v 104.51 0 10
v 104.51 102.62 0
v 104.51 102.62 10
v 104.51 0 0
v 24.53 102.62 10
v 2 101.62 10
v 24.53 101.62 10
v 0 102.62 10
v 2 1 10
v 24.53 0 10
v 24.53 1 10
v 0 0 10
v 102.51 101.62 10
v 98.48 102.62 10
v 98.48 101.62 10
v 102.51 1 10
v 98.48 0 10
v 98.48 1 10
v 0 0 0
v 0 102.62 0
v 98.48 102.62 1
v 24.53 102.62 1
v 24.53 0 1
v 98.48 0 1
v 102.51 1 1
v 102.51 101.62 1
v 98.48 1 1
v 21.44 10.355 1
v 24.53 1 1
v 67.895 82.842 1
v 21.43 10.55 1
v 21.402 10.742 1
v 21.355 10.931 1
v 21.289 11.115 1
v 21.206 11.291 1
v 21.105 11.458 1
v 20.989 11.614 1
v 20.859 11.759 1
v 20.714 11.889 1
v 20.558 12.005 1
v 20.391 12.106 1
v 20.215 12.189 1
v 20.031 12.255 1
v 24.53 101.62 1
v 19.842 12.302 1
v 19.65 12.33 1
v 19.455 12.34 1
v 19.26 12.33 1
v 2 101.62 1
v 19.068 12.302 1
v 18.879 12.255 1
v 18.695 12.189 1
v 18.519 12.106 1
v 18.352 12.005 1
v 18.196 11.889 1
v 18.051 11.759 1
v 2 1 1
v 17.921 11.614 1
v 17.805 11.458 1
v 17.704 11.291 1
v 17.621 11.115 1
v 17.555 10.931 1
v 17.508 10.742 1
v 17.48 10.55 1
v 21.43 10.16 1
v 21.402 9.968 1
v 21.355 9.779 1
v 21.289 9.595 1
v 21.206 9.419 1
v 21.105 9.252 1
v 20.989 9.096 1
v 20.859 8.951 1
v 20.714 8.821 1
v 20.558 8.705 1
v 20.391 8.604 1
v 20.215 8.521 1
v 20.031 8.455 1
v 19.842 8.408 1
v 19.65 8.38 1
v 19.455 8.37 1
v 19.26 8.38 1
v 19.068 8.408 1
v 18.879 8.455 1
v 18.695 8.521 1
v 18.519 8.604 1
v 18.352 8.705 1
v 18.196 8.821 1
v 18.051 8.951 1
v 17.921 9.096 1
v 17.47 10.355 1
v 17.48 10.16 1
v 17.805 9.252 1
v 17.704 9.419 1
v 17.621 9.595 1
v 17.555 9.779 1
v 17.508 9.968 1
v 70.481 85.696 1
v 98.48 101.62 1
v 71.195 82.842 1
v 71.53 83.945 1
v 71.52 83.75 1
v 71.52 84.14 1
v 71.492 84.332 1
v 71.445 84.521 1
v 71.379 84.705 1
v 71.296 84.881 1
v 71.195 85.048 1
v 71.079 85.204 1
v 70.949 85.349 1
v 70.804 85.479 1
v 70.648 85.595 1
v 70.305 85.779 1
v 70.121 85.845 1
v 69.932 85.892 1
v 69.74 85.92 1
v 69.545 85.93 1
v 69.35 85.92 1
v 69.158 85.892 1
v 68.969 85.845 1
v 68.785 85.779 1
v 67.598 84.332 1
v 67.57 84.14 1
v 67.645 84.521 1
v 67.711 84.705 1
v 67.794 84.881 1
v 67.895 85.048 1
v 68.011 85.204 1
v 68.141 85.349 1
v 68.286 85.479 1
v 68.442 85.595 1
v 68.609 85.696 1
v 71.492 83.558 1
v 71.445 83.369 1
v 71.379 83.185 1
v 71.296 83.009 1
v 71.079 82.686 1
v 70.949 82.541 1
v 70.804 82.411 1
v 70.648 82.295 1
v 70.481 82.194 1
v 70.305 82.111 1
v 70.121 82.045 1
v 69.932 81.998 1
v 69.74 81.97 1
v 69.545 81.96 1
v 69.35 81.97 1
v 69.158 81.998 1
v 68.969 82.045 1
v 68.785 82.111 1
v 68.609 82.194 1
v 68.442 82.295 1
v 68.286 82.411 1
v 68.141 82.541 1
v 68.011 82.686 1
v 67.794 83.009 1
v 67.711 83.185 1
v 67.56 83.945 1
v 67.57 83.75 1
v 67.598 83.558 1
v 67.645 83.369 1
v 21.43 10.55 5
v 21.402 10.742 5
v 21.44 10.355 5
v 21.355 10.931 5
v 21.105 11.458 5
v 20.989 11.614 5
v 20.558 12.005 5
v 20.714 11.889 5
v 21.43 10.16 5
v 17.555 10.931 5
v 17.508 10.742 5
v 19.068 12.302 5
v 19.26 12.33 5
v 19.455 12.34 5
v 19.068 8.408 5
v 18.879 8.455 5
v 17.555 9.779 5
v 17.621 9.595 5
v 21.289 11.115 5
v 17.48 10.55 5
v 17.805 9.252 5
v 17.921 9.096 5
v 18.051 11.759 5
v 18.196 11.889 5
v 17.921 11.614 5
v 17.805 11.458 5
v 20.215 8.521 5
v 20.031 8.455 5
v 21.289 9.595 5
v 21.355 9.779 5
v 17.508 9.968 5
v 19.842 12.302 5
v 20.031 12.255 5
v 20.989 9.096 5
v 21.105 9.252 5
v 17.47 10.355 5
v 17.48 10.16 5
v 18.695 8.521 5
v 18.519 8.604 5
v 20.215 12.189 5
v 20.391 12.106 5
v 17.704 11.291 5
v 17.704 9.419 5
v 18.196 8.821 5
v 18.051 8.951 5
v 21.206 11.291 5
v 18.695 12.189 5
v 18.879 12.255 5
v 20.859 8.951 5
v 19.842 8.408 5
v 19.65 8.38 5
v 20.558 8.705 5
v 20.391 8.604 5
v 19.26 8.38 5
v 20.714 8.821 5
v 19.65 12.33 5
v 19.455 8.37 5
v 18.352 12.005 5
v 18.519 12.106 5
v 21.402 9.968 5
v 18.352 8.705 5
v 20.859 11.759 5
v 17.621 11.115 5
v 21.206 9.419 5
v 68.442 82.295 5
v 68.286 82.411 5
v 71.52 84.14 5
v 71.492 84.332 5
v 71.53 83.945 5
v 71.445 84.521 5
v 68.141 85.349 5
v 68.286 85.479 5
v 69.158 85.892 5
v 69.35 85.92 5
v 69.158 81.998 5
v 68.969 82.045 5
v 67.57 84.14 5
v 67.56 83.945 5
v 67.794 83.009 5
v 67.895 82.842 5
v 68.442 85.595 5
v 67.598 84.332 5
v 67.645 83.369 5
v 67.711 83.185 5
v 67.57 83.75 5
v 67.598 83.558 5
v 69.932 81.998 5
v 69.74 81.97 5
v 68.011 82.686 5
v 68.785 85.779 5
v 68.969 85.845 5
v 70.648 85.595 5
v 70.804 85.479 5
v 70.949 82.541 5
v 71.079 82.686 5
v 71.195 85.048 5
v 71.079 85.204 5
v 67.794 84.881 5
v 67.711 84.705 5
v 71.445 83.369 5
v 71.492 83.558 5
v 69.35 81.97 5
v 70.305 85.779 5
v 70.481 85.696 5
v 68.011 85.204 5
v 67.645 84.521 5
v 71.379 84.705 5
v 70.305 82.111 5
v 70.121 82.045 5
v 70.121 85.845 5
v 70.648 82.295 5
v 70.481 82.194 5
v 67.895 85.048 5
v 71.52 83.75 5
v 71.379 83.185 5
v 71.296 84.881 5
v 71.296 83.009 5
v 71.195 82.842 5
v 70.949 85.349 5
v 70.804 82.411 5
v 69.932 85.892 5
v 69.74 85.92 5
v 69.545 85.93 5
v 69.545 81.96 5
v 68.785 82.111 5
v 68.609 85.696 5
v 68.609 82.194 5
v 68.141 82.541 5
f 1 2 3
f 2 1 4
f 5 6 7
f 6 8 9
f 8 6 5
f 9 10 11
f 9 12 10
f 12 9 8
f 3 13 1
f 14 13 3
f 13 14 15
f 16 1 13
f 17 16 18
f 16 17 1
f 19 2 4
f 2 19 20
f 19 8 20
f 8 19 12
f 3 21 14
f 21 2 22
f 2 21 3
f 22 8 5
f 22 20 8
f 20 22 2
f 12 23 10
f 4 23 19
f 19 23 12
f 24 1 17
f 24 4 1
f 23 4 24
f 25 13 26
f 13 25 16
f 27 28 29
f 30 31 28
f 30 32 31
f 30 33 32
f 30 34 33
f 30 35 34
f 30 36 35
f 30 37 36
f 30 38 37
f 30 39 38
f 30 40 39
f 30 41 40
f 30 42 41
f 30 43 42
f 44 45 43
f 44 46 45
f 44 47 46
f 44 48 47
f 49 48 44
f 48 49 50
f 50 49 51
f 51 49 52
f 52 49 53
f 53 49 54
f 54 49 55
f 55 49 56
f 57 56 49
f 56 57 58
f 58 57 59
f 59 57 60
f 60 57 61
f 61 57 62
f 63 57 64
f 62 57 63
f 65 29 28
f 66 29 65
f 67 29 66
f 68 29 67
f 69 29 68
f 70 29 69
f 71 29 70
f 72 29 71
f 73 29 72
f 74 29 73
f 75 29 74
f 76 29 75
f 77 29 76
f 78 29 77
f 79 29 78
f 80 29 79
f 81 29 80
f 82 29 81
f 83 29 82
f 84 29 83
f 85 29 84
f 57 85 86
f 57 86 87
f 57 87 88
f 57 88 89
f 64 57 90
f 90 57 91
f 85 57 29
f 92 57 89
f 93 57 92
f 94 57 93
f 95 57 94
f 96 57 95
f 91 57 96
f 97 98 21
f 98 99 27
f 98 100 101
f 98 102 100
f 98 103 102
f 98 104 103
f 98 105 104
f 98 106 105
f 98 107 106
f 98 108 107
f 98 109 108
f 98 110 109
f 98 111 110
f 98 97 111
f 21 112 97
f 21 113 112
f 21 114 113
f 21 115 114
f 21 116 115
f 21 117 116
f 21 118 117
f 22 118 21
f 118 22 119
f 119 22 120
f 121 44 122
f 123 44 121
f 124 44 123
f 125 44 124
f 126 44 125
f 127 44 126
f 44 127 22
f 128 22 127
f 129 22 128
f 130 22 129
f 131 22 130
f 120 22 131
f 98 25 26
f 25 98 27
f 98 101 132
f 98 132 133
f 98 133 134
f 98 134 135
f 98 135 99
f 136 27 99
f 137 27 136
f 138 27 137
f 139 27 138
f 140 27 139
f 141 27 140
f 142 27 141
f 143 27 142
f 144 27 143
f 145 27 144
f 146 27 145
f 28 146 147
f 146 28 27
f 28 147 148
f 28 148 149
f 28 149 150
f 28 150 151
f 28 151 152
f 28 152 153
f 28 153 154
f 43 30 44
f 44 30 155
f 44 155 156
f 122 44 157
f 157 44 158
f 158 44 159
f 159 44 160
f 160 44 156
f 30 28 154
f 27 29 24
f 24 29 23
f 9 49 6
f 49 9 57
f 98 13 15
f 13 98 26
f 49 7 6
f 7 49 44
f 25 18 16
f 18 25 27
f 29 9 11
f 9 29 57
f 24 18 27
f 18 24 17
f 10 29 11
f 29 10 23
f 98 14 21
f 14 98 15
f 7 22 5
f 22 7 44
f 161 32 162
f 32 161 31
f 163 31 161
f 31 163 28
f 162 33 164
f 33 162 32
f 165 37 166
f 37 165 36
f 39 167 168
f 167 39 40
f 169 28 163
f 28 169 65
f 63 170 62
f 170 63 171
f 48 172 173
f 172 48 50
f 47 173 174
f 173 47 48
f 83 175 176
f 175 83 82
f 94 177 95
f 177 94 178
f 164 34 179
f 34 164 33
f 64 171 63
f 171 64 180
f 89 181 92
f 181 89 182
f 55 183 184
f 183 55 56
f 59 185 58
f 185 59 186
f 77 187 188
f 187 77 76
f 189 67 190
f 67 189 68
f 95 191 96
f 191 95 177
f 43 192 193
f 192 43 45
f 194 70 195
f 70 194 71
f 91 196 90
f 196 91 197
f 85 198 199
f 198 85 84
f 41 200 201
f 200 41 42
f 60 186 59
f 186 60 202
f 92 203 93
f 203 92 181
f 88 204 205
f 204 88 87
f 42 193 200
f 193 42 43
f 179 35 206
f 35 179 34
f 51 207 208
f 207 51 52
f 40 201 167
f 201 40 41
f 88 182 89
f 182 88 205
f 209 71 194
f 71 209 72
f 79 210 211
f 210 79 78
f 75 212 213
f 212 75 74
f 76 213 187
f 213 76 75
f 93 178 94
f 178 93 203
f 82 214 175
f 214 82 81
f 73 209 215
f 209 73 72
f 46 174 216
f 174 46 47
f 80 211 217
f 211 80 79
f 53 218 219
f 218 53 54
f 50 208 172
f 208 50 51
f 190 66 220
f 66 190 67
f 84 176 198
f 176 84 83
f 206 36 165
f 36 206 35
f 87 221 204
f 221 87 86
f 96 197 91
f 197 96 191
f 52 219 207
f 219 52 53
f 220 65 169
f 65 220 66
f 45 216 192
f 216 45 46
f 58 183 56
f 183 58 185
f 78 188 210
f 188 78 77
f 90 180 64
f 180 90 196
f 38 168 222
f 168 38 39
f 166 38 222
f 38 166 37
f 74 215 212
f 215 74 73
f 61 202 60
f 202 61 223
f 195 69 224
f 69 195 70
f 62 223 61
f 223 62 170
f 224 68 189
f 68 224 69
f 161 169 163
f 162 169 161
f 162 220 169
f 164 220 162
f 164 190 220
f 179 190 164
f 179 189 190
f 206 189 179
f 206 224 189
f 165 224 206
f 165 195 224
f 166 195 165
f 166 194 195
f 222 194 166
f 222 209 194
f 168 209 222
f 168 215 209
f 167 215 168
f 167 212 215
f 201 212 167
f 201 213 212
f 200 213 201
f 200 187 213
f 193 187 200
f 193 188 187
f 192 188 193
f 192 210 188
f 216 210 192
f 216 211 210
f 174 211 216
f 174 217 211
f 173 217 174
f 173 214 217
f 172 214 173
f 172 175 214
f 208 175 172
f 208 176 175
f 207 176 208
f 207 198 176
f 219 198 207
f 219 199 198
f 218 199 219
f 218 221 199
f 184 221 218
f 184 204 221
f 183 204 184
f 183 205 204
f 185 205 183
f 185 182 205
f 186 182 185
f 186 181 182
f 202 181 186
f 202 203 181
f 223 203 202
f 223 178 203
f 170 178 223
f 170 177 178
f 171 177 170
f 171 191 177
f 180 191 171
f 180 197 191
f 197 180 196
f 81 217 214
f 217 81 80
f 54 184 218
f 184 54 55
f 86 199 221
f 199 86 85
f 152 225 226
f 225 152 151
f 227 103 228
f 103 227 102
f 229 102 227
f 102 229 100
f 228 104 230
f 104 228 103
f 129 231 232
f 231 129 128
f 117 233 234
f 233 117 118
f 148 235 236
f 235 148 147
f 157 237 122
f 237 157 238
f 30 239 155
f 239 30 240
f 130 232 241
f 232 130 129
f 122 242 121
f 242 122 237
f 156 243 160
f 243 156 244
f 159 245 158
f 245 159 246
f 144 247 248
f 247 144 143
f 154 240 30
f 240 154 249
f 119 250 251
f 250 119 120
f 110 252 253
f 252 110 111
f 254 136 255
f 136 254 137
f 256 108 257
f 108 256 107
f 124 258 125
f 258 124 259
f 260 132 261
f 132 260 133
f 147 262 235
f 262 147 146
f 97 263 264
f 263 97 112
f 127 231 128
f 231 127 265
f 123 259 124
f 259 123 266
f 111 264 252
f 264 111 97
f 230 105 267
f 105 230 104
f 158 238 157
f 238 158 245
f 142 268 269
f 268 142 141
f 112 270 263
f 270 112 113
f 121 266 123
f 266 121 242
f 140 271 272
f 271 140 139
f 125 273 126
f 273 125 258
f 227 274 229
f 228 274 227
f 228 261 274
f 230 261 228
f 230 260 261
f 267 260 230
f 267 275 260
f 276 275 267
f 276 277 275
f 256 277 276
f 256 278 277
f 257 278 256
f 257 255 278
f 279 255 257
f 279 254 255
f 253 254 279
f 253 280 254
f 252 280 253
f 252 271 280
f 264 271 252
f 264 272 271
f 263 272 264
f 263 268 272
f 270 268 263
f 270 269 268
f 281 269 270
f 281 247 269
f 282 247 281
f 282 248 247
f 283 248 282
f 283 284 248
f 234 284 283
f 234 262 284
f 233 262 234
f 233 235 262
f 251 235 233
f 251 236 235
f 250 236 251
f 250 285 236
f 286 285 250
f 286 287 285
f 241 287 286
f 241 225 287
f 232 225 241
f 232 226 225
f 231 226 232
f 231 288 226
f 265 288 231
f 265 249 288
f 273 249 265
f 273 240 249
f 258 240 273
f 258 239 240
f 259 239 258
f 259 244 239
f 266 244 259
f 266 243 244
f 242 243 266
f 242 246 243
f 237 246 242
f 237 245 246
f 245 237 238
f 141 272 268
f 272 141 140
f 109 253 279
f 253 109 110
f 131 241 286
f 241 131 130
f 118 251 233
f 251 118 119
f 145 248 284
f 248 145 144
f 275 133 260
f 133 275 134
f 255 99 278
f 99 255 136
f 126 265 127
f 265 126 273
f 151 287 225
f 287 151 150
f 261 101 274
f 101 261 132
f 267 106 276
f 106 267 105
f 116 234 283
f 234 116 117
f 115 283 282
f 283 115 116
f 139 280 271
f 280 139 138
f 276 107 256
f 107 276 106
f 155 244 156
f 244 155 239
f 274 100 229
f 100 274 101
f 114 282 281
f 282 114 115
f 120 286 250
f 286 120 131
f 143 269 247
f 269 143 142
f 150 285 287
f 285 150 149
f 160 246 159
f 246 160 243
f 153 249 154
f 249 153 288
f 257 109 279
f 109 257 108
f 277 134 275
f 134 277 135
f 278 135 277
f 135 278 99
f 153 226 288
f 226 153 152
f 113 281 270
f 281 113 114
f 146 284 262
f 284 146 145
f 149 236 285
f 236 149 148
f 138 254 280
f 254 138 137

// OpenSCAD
pcb_width=99.85;                // Across the back of the ZX, as per KiCAD PCB layout
pcb_length=99.96;               // ZX edge connector to rear of PCB, as per KiCAD PCB layout
side_wall_thickness=2.0;        // Left and right side walls
far_wall_thickness=1.0;         // Wall as rear of device, might obstruct plugging in
closest_wall_thickness=1.0;     // Wall closest to ZX, might obstruct plugging in
base_thickness=1.0;             // Mustn't be too high, PCB will lift as it is

walls_height=10.0;              // For now, keep the walls low

// These are from the rear edge, which is slightly wider than the front
//
right_side_edge_offset=3.7;     // Edge connector slot, from right side
left_side_edge_offset=22.2;     // Edge connector slot, from left side

spacing=0.33;                   // Bit of slack to ensure things fit together

base_width=side_wall_thickness + spacing + pcb_width + spacing + side_wall_thickness;
base_length=closest_wall_thickness + spacing + pcb_length + spacing + far_wall_thickness;

pcb_aperture_width = spacing + pcb_width + spacing;
pcb_aperture_length = spacing + pcb_length + spacing;

locating_post_height=5;
locating_post_hole_diameter=4.3;
locating_post_diameter=locating_post_hole_diameter-spacing;
locating_post1_xpos_centre=19.11;
locating_post1_ypos_centre=11.01;
locating_post2_xpos_centre=69.2;
locating_post2_ypos_centre=84.6;

$fn=64;

// Build the shell
//
difference()
{
  // Basic cube
  //
  cube([base_width,base_length,walls_height], false);
  
  // Cut out the middle, PCB drops into here
  //
  translate([side_wall_thickness, closest_wall_thickness, base_thickness])
  {
    cube([pcb_aperture_width,pcb_aperture_length,walls_height], false);
  }
  
  // Cut out front wall for the edge connector
  //
  edge_xpos = side_wall_thickness + spacing + left_side_edge_offset;
  edge_width=pcb_width - left_side_edge_offset - right_side_edge_offset;
  translate([edge_xpos, 0, base_thickness])
  {
    cube([edge_width,closest_wall_thickness,walls_height], false);
  }

  // Cut out rear wall for the passthrough connector
  //
  far_wall_ypos=closest_wall_thickness + spacing + pcb_length + spacing;
  translate([edge_xpos, far_wall_ypos, base_thickness])
  {
    cube([edge_width,far_wall_thickness,walls_height], false);
  }
}

// Centring the posts centres them vertically as well, so use this instead
//
locating_post_offset=locating_post_diameter/2;

translate([side_wall_thickness+spacing+locating_post1_xpos_centre-locating_post_offset,
           closest_wall_thickness+spacing+locating_post1_ypos_centre-locating_post_offset,
           0])
{
  cylinder(locating_post_height, locating_post_diameter/2, locating_post_diameter/2, false);
}

translate([side_wall_thickness+spacing+locating_post2_xpos_centre-locating_post_offset,
           closest_wall_thickness+spacing+locating_post2_ypos_centre-locating_post_offset,
           0])
{
  cylinder(locating_post_height, locating_post_diameter/2, locating_post_diameter/2, false);
}
